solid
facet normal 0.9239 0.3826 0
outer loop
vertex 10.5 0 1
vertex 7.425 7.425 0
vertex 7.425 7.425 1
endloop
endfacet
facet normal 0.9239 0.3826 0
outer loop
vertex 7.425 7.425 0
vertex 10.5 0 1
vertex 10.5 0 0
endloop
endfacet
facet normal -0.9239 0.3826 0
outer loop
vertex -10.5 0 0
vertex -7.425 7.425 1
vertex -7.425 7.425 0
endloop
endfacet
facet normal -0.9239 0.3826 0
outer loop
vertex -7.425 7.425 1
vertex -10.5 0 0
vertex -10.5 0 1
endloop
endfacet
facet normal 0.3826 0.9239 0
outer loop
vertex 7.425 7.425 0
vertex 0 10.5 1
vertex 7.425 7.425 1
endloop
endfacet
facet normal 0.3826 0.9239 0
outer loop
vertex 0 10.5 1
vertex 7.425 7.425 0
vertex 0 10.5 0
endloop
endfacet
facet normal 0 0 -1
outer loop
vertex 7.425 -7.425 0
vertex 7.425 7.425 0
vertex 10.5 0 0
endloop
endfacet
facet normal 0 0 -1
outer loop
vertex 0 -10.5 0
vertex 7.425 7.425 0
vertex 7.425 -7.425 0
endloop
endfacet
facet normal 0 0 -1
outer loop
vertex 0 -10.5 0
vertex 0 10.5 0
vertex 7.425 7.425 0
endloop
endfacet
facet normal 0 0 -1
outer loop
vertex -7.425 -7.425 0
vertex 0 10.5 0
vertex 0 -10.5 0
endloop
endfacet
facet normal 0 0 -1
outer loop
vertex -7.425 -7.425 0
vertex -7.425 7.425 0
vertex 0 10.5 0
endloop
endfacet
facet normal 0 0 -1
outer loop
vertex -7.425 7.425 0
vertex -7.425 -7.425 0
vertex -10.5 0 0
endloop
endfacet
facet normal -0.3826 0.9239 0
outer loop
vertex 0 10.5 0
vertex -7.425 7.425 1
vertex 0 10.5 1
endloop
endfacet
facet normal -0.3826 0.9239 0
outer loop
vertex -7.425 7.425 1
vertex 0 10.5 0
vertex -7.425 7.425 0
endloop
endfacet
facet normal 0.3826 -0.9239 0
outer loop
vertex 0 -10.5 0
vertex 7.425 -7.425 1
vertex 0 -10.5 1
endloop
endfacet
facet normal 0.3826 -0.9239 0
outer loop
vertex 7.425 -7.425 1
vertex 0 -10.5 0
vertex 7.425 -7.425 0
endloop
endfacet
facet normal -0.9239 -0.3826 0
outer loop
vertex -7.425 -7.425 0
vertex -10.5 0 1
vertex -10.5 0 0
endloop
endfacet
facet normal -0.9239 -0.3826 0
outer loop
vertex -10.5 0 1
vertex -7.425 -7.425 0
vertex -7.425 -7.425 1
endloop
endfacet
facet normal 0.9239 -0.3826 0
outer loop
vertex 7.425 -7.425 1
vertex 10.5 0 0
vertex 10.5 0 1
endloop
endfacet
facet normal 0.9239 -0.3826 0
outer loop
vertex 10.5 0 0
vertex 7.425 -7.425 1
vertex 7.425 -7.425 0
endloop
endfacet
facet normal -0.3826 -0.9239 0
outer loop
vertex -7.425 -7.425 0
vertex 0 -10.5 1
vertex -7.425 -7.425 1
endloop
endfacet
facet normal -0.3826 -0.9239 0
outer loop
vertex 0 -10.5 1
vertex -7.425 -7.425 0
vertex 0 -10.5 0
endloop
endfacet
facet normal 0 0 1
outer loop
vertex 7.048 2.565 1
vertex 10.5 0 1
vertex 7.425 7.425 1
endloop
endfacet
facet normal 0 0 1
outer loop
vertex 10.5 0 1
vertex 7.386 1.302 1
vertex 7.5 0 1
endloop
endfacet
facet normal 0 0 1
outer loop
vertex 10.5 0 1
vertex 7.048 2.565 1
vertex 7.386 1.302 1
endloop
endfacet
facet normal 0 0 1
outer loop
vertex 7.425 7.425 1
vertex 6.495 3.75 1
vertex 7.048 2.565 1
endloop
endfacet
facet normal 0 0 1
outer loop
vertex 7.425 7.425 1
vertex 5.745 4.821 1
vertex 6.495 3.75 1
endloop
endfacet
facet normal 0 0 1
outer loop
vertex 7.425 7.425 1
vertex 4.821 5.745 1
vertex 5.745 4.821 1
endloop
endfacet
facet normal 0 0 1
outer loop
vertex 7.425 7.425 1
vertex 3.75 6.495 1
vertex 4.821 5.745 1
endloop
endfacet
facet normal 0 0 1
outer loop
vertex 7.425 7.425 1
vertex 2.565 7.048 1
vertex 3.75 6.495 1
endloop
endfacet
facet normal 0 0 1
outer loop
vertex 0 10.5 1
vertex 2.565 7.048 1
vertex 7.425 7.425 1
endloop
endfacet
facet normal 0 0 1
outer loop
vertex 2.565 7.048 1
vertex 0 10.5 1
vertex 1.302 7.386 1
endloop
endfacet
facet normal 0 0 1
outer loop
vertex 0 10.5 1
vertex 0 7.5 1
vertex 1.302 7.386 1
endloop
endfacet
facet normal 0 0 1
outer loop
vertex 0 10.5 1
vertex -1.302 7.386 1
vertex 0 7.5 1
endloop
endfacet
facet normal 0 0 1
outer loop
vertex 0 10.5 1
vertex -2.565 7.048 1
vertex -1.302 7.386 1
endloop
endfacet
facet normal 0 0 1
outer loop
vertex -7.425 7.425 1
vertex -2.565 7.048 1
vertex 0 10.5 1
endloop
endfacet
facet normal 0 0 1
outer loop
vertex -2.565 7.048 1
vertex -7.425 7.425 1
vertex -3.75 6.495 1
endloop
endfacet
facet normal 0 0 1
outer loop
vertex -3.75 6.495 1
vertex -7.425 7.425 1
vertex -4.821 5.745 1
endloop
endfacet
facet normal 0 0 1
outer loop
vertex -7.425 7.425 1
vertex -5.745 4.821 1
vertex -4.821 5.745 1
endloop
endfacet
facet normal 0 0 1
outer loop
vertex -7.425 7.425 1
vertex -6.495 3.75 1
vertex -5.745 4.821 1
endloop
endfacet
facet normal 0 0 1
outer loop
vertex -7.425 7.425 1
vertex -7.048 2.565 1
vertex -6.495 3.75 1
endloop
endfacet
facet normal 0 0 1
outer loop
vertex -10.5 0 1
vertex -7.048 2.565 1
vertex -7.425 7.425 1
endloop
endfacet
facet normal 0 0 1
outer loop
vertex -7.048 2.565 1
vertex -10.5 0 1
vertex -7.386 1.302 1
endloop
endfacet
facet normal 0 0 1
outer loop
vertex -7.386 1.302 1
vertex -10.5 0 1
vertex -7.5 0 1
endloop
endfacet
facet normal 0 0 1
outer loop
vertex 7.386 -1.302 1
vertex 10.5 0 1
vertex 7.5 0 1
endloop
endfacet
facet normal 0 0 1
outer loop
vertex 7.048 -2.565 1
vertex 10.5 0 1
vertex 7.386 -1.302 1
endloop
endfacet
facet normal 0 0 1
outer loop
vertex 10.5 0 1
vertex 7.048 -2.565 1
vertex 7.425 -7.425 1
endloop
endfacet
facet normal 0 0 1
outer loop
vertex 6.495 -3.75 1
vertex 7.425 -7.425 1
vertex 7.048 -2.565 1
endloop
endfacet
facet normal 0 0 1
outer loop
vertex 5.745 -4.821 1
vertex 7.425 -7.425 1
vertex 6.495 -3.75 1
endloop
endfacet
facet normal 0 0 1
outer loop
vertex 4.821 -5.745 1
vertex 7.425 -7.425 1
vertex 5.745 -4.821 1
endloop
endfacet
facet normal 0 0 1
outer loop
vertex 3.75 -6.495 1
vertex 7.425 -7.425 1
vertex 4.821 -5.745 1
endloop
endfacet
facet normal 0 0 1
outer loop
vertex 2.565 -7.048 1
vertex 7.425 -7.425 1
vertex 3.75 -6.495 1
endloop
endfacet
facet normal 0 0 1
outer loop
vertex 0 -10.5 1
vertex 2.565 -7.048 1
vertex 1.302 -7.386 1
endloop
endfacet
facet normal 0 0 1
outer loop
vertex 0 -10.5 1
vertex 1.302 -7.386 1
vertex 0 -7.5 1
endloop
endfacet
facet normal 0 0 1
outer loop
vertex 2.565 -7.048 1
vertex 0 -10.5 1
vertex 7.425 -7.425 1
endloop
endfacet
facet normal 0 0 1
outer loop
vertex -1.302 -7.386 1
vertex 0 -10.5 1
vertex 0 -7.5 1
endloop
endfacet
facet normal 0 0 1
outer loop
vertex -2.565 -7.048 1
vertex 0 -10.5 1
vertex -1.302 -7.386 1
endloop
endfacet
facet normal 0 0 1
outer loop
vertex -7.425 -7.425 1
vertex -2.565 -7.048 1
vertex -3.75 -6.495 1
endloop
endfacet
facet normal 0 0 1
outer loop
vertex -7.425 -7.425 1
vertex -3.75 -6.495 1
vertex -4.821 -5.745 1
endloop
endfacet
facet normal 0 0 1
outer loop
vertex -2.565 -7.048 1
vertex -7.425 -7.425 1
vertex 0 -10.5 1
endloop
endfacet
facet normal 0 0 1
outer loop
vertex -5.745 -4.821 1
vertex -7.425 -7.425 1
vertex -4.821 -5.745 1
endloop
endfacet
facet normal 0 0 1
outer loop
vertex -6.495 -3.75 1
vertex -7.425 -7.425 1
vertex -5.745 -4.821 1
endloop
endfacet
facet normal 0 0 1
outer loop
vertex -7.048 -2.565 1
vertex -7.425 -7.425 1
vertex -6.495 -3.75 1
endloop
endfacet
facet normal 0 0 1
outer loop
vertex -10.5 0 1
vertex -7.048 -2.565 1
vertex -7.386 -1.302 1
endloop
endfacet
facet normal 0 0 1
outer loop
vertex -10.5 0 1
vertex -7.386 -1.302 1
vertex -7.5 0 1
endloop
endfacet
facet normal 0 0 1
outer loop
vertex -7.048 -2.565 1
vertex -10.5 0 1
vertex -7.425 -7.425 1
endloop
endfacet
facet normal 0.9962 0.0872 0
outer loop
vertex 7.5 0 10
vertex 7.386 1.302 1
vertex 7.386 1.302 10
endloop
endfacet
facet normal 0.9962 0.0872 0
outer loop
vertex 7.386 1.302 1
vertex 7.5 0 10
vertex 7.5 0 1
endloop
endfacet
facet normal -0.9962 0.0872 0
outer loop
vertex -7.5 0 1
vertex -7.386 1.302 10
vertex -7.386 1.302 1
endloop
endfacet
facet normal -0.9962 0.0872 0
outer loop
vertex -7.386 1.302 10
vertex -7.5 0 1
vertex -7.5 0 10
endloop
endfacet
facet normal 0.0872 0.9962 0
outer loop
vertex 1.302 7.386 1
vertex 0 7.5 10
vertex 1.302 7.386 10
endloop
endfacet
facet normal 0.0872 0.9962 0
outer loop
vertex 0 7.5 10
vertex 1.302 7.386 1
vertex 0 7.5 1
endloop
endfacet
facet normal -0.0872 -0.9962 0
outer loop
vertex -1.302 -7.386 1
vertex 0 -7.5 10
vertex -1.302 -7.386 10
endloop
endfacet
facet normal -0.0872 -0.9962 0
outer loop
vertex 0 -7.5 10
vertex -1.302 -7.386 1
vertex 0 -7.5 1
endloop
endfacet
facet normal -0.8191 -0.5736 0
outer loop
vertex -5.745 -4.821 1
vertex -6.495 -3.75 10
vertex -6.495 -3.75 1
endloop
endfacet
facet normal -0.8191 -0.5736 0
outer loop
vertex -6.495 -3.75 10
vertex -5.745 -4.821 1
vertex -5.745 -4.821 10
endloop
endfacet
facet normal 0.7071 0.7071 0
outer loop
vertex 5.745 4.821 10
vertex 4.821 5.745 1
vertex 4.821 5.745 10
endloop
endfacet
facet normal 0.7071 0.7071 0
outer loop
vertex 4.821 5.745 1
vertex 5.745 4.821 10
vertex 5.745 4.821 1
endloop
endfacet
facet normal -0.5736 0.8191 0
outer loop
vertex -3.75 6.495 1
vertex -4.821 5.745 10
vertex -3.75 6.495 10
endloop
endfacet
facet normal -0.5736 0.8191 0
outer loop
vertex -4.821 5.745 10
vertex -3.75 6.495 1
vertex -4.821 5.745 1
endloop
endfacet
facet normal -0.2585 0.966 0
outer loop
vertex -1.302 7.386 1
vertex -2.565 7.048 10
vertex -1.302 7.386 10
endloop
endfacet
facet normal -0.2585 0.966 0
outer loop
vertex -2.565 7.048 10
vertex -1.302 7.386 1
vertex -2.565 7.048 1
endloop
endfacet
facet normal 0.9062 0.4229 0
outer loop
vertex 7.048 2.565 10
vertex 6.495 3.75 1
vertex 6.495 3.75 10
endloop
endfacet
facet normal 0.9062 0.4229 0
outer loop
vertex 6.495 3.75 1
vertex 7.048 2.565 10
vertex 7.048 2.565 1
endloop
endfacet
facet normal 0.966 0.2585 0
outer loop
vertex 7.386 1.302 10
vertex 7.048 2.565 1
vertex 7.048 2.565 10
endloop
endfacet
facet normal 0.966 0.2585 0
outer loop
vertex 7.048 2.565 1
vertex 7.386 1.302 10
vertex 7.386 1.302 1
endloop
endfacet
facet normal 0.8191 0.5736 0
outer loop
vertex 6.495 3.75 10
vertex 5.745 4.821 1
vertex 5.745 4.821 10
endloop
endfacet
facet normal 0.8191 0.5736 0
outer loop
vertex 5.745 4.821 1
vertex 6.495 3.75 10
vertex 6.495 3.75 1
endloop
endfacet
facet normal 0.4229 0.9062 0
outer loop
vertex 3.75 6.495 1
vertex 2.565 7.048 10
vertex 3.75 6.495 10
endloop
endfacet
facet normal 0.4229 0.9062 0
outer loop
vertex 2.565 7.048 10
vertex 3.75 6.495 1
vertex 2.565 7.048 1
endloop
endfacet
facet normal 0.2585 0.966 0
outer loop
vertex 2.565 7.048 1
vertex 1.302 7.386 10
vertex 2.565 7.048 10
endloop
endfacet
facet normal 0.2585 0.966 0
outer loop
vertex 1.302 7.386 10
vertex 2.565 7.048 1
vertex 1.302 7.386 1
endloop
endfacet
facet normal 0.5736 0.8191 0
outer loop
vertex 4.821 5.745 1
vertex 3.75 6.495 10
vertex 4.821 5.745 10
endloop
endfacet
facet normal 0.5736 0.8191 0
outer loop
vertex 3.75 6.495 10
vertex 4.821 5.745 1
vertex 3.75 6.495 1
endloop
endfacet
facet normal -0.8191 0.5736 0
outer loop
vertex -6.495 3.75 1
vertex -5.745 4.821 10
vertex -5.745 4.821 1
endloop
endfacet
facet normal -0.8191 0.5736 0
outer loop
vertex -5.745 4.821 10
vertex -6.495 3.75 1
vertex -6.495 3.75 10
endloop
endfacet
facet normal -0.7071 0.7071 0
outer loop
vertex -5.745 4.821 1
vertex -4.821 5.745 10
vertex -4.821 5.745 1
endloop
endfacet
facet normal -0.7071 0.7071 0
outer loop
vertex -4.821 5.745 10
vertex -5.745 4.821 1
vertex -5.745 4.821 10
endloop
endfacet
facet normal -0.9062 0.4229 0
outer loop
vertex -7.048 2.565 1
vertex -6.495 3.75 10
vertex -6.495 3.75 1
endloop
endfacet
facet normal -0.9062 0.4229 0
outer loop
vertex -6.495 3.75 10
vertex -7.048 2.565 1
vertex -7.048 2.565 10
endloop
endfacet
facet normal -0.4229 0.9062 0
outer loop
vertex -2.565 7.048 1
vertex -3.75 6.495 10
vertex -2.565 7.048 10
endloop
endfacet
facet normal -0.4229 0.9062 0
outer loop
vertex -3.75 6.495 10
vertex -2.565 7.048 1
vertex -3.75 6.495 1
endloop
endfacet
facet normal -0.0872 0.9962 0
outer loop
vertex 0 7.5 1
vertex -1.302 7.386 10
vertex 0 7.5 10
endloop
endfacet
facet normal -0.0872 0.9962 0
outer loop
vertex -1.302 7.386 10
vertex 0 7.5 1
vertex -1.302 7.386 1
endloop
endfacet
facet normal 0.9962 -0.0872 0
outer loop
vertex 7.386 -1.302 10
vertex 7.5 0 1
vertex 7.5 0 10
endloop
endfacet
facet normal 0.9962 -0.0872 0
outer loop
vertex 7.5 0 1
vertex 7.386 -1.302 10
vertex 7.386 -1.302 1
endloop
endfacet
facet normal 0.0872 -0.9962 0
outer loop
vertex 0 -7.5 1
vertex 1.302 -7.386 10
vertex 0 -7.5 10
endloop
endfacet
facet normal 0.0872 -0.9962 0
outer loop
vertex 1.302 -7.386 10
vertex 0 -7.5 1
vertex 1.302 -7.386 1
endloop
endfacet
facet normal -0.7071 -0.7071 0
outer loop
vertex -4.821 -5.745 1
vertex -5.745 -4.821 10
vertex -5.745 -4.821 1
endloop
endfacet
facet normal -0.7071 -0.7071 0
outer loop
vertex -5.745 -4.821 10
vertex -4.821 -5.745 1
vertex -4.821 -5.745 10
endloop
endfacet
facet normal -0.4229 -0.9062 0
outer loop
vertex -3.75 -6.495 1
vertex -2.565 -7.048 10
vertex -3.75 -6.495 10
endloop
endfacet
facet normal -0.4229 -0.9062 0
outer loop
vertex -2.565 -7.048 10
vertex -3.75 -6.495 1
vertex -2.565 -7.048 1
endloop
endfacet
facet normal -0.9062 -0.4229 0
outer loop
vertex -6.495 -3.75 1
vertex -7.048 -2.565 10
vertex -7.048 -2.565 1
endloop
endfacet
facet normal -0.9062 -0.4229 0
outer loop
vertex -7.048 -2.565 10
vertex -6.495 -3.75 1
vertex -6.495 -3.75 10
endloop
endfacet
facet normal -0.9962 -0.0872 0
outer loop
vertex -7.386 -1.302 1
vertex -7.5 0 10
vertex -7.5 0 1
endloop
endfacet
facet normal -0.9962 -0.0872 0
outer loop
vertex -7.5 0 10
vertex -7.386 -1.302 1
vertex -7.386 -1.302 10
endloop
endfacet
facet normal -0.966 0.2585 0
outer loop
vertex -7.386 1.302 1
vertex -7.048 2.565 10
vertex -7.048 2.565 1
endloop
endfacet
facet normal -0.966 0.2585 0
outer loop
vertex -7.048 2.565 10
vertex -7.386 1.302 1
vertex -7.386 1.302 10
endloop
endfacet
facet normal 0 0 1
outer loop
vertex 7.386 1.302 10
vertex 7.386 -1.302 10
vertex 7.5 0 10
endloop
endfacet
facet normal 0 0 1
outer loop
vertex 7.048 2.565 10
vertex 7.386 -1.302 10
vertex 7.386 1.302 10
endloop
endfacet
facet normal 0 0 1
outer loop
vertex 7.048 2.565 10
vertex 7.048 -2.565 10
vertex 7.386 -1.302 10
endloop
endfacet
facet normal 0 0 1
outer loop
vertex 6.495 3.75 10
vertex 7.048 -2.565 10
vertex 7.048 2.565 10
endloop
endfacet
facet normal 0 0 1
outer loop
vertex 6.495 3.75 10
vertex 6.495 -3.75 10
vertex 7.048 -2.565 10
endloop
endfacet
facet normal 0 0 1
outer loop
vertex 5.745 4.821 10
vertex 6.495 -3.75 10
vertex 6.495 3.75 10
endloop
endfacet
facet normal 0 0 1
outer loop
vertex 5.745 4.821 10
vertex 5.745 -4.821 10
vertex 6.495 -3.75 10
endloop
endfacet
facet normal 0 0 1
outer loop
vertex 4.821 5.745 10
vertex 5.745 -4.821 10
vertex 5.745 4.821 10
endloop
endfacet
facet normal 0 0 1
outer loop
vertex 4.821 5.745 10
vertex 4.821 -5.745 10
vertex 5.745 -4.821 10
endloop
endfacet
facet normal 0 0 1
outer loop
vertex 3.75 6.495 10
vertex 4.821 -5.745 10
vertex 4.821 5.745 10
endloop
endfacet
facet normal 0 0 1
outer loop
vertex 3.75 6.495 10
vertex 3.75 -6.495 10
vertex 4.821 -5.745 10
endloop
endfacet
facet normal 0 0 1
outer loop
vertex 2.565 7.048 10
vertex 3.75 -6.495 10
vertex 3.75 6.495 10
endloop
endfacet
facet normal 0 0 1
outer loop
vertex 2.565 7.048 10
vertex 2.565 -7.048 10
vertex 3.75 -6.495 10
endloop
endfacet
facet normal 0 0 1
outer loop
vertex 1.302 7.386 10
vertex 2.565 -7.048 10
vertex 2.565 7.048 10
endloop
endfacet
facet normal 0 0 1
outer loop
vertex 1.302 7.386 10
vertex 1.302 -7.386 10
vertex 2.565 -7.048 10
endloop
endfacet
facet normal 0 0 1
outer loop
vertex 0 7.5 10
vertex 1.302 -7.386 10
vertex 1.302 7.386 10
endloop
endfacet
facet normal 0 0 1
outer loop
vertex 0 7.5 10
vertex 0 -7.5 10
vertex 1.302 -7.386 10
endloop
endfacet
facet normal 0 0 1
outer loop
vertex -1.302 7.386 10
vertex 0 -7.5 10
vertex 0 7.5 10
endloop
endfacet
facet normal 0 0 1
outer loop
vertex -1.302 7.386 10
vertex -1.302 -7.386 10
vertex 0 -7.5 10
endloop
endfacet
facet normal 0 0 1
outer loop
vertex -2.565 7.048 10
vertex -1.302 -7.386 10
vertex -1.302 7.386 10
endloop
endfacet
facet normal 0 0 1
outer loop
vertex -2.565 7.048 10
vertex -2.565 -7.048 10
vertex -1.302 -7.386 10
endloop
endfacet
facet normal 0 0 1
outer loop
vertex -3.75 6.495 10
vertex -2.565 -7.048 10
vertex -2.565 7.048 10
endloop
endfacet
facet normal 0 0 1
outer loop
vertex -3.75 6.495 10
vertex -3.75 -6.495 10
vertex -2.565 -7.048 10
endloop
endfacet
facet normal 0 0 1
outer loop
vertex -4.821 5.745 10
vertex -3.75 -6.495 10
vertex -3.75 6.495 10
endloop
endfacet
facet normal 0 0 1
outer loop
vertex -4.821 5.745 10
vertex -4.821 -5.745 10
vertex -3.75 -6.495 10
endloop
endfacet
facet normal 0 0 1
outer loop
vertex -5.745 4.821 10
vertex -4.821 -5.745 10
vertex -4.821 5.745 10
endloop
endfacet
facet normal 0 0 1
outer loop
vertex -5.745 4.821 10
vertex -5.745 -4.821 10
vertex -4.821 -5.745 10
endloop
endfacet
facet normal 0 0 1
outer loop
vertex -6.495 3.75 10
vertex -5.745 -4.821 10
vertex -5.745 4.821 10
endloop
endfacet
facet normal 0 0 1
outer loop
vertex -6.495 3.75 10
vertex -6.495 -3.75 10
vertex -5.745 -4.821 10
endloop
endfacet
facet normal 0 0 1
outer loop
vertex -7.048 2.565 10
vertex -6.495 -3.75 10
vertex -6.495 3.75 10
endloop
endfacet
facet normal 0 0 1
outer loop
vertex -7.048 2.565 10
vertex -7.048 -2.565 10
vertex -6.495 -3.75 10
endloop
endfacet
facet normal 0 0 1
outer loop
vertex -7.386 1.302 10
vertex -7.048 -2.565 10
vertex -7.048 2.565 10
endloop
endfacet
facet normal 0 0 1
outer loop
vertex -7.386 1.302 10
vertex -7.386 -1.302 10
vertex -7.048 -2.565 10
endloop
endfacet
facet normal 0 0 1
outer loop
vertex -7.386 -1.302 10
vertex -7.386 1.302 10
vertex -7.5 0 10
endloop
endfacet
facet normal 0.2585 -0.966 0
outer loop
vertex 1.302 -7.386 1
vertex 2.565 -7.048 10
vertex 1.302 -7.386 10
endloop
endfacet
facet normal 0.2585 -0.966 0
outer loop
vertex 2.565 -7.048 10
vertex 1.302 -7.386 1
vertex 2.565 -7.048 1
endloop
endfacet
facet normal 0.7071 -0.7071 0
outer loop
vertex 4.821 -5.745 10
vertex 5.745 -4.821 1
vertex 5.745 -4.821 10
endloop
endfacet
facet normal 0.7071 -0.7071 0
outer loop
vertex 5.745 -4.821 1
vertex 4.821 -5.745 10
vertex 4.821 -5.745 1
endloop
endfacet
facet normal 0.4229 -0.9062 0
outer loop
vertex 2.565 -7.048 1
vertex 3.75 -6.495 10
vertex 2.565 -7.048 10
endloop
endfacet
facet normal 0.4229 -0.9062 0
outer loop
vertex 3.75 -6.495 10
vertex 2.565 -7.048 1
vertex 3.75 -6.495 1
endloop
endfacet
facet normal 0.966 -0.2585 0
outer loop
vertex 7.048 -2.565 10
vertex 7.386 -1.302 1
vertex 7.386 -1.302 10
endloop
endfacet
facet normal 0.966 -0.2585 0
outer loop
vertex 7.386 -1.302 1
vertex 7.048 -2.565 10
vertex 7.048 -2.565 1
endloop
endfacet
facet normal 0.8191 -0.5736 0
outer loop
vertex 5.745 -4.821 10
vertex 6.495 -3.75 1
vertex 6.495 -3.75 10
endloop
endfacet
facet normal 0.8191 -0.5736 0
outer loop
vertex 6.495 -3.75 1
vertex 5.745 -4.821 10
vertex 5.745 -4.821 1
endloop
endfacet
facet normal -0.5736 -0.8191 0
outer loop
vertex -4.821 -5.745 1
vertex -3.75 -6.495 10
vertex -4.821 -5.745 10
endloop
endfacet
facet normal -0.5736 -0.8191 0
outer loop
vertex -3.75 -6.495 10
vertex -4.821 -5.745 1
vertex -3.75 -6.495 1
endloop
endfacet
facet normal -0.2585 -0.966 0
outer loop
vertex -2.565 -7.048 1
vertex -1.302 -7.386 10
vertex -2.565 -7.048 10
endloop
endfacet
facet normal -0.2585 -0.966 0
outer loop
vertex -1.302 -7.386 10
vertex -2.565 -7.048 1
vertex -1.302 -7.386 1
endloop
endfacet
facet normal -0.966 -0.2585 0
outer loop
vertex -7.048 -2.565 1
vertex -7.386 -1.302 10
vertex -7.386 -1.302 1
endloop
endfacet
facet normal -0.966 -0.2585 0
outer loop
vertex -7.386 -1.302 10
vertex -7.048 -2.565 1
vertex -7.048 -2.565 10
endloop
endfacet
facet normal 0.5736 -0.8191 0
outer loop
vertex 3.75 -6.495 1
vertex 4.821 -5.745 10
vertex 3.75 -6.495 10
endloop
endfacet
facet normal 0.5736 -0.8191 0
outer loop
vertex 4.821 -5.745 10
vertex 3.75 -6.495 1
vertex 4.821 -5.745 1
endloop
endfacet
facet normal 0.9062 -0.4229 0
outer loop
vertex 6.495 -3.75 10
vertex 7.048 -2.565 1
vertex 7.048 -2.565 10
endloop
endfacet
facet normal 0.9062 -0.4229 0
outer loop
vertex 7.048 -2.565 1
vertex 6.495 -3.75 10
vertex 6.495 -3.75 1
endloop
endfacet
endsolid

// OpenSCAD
$fn=36;

emergency_stop();

stop_rad = 7.5;
stop_height = 10;
flange_height = 1;
flange_rad = stop_rad+3;

module emergency_stop(){
    union(){
        cylinder(r=flange_rad, h=flange_height, $fn=8);
        cylinder(r=stop_rad, h=stop_height);
    }
}
